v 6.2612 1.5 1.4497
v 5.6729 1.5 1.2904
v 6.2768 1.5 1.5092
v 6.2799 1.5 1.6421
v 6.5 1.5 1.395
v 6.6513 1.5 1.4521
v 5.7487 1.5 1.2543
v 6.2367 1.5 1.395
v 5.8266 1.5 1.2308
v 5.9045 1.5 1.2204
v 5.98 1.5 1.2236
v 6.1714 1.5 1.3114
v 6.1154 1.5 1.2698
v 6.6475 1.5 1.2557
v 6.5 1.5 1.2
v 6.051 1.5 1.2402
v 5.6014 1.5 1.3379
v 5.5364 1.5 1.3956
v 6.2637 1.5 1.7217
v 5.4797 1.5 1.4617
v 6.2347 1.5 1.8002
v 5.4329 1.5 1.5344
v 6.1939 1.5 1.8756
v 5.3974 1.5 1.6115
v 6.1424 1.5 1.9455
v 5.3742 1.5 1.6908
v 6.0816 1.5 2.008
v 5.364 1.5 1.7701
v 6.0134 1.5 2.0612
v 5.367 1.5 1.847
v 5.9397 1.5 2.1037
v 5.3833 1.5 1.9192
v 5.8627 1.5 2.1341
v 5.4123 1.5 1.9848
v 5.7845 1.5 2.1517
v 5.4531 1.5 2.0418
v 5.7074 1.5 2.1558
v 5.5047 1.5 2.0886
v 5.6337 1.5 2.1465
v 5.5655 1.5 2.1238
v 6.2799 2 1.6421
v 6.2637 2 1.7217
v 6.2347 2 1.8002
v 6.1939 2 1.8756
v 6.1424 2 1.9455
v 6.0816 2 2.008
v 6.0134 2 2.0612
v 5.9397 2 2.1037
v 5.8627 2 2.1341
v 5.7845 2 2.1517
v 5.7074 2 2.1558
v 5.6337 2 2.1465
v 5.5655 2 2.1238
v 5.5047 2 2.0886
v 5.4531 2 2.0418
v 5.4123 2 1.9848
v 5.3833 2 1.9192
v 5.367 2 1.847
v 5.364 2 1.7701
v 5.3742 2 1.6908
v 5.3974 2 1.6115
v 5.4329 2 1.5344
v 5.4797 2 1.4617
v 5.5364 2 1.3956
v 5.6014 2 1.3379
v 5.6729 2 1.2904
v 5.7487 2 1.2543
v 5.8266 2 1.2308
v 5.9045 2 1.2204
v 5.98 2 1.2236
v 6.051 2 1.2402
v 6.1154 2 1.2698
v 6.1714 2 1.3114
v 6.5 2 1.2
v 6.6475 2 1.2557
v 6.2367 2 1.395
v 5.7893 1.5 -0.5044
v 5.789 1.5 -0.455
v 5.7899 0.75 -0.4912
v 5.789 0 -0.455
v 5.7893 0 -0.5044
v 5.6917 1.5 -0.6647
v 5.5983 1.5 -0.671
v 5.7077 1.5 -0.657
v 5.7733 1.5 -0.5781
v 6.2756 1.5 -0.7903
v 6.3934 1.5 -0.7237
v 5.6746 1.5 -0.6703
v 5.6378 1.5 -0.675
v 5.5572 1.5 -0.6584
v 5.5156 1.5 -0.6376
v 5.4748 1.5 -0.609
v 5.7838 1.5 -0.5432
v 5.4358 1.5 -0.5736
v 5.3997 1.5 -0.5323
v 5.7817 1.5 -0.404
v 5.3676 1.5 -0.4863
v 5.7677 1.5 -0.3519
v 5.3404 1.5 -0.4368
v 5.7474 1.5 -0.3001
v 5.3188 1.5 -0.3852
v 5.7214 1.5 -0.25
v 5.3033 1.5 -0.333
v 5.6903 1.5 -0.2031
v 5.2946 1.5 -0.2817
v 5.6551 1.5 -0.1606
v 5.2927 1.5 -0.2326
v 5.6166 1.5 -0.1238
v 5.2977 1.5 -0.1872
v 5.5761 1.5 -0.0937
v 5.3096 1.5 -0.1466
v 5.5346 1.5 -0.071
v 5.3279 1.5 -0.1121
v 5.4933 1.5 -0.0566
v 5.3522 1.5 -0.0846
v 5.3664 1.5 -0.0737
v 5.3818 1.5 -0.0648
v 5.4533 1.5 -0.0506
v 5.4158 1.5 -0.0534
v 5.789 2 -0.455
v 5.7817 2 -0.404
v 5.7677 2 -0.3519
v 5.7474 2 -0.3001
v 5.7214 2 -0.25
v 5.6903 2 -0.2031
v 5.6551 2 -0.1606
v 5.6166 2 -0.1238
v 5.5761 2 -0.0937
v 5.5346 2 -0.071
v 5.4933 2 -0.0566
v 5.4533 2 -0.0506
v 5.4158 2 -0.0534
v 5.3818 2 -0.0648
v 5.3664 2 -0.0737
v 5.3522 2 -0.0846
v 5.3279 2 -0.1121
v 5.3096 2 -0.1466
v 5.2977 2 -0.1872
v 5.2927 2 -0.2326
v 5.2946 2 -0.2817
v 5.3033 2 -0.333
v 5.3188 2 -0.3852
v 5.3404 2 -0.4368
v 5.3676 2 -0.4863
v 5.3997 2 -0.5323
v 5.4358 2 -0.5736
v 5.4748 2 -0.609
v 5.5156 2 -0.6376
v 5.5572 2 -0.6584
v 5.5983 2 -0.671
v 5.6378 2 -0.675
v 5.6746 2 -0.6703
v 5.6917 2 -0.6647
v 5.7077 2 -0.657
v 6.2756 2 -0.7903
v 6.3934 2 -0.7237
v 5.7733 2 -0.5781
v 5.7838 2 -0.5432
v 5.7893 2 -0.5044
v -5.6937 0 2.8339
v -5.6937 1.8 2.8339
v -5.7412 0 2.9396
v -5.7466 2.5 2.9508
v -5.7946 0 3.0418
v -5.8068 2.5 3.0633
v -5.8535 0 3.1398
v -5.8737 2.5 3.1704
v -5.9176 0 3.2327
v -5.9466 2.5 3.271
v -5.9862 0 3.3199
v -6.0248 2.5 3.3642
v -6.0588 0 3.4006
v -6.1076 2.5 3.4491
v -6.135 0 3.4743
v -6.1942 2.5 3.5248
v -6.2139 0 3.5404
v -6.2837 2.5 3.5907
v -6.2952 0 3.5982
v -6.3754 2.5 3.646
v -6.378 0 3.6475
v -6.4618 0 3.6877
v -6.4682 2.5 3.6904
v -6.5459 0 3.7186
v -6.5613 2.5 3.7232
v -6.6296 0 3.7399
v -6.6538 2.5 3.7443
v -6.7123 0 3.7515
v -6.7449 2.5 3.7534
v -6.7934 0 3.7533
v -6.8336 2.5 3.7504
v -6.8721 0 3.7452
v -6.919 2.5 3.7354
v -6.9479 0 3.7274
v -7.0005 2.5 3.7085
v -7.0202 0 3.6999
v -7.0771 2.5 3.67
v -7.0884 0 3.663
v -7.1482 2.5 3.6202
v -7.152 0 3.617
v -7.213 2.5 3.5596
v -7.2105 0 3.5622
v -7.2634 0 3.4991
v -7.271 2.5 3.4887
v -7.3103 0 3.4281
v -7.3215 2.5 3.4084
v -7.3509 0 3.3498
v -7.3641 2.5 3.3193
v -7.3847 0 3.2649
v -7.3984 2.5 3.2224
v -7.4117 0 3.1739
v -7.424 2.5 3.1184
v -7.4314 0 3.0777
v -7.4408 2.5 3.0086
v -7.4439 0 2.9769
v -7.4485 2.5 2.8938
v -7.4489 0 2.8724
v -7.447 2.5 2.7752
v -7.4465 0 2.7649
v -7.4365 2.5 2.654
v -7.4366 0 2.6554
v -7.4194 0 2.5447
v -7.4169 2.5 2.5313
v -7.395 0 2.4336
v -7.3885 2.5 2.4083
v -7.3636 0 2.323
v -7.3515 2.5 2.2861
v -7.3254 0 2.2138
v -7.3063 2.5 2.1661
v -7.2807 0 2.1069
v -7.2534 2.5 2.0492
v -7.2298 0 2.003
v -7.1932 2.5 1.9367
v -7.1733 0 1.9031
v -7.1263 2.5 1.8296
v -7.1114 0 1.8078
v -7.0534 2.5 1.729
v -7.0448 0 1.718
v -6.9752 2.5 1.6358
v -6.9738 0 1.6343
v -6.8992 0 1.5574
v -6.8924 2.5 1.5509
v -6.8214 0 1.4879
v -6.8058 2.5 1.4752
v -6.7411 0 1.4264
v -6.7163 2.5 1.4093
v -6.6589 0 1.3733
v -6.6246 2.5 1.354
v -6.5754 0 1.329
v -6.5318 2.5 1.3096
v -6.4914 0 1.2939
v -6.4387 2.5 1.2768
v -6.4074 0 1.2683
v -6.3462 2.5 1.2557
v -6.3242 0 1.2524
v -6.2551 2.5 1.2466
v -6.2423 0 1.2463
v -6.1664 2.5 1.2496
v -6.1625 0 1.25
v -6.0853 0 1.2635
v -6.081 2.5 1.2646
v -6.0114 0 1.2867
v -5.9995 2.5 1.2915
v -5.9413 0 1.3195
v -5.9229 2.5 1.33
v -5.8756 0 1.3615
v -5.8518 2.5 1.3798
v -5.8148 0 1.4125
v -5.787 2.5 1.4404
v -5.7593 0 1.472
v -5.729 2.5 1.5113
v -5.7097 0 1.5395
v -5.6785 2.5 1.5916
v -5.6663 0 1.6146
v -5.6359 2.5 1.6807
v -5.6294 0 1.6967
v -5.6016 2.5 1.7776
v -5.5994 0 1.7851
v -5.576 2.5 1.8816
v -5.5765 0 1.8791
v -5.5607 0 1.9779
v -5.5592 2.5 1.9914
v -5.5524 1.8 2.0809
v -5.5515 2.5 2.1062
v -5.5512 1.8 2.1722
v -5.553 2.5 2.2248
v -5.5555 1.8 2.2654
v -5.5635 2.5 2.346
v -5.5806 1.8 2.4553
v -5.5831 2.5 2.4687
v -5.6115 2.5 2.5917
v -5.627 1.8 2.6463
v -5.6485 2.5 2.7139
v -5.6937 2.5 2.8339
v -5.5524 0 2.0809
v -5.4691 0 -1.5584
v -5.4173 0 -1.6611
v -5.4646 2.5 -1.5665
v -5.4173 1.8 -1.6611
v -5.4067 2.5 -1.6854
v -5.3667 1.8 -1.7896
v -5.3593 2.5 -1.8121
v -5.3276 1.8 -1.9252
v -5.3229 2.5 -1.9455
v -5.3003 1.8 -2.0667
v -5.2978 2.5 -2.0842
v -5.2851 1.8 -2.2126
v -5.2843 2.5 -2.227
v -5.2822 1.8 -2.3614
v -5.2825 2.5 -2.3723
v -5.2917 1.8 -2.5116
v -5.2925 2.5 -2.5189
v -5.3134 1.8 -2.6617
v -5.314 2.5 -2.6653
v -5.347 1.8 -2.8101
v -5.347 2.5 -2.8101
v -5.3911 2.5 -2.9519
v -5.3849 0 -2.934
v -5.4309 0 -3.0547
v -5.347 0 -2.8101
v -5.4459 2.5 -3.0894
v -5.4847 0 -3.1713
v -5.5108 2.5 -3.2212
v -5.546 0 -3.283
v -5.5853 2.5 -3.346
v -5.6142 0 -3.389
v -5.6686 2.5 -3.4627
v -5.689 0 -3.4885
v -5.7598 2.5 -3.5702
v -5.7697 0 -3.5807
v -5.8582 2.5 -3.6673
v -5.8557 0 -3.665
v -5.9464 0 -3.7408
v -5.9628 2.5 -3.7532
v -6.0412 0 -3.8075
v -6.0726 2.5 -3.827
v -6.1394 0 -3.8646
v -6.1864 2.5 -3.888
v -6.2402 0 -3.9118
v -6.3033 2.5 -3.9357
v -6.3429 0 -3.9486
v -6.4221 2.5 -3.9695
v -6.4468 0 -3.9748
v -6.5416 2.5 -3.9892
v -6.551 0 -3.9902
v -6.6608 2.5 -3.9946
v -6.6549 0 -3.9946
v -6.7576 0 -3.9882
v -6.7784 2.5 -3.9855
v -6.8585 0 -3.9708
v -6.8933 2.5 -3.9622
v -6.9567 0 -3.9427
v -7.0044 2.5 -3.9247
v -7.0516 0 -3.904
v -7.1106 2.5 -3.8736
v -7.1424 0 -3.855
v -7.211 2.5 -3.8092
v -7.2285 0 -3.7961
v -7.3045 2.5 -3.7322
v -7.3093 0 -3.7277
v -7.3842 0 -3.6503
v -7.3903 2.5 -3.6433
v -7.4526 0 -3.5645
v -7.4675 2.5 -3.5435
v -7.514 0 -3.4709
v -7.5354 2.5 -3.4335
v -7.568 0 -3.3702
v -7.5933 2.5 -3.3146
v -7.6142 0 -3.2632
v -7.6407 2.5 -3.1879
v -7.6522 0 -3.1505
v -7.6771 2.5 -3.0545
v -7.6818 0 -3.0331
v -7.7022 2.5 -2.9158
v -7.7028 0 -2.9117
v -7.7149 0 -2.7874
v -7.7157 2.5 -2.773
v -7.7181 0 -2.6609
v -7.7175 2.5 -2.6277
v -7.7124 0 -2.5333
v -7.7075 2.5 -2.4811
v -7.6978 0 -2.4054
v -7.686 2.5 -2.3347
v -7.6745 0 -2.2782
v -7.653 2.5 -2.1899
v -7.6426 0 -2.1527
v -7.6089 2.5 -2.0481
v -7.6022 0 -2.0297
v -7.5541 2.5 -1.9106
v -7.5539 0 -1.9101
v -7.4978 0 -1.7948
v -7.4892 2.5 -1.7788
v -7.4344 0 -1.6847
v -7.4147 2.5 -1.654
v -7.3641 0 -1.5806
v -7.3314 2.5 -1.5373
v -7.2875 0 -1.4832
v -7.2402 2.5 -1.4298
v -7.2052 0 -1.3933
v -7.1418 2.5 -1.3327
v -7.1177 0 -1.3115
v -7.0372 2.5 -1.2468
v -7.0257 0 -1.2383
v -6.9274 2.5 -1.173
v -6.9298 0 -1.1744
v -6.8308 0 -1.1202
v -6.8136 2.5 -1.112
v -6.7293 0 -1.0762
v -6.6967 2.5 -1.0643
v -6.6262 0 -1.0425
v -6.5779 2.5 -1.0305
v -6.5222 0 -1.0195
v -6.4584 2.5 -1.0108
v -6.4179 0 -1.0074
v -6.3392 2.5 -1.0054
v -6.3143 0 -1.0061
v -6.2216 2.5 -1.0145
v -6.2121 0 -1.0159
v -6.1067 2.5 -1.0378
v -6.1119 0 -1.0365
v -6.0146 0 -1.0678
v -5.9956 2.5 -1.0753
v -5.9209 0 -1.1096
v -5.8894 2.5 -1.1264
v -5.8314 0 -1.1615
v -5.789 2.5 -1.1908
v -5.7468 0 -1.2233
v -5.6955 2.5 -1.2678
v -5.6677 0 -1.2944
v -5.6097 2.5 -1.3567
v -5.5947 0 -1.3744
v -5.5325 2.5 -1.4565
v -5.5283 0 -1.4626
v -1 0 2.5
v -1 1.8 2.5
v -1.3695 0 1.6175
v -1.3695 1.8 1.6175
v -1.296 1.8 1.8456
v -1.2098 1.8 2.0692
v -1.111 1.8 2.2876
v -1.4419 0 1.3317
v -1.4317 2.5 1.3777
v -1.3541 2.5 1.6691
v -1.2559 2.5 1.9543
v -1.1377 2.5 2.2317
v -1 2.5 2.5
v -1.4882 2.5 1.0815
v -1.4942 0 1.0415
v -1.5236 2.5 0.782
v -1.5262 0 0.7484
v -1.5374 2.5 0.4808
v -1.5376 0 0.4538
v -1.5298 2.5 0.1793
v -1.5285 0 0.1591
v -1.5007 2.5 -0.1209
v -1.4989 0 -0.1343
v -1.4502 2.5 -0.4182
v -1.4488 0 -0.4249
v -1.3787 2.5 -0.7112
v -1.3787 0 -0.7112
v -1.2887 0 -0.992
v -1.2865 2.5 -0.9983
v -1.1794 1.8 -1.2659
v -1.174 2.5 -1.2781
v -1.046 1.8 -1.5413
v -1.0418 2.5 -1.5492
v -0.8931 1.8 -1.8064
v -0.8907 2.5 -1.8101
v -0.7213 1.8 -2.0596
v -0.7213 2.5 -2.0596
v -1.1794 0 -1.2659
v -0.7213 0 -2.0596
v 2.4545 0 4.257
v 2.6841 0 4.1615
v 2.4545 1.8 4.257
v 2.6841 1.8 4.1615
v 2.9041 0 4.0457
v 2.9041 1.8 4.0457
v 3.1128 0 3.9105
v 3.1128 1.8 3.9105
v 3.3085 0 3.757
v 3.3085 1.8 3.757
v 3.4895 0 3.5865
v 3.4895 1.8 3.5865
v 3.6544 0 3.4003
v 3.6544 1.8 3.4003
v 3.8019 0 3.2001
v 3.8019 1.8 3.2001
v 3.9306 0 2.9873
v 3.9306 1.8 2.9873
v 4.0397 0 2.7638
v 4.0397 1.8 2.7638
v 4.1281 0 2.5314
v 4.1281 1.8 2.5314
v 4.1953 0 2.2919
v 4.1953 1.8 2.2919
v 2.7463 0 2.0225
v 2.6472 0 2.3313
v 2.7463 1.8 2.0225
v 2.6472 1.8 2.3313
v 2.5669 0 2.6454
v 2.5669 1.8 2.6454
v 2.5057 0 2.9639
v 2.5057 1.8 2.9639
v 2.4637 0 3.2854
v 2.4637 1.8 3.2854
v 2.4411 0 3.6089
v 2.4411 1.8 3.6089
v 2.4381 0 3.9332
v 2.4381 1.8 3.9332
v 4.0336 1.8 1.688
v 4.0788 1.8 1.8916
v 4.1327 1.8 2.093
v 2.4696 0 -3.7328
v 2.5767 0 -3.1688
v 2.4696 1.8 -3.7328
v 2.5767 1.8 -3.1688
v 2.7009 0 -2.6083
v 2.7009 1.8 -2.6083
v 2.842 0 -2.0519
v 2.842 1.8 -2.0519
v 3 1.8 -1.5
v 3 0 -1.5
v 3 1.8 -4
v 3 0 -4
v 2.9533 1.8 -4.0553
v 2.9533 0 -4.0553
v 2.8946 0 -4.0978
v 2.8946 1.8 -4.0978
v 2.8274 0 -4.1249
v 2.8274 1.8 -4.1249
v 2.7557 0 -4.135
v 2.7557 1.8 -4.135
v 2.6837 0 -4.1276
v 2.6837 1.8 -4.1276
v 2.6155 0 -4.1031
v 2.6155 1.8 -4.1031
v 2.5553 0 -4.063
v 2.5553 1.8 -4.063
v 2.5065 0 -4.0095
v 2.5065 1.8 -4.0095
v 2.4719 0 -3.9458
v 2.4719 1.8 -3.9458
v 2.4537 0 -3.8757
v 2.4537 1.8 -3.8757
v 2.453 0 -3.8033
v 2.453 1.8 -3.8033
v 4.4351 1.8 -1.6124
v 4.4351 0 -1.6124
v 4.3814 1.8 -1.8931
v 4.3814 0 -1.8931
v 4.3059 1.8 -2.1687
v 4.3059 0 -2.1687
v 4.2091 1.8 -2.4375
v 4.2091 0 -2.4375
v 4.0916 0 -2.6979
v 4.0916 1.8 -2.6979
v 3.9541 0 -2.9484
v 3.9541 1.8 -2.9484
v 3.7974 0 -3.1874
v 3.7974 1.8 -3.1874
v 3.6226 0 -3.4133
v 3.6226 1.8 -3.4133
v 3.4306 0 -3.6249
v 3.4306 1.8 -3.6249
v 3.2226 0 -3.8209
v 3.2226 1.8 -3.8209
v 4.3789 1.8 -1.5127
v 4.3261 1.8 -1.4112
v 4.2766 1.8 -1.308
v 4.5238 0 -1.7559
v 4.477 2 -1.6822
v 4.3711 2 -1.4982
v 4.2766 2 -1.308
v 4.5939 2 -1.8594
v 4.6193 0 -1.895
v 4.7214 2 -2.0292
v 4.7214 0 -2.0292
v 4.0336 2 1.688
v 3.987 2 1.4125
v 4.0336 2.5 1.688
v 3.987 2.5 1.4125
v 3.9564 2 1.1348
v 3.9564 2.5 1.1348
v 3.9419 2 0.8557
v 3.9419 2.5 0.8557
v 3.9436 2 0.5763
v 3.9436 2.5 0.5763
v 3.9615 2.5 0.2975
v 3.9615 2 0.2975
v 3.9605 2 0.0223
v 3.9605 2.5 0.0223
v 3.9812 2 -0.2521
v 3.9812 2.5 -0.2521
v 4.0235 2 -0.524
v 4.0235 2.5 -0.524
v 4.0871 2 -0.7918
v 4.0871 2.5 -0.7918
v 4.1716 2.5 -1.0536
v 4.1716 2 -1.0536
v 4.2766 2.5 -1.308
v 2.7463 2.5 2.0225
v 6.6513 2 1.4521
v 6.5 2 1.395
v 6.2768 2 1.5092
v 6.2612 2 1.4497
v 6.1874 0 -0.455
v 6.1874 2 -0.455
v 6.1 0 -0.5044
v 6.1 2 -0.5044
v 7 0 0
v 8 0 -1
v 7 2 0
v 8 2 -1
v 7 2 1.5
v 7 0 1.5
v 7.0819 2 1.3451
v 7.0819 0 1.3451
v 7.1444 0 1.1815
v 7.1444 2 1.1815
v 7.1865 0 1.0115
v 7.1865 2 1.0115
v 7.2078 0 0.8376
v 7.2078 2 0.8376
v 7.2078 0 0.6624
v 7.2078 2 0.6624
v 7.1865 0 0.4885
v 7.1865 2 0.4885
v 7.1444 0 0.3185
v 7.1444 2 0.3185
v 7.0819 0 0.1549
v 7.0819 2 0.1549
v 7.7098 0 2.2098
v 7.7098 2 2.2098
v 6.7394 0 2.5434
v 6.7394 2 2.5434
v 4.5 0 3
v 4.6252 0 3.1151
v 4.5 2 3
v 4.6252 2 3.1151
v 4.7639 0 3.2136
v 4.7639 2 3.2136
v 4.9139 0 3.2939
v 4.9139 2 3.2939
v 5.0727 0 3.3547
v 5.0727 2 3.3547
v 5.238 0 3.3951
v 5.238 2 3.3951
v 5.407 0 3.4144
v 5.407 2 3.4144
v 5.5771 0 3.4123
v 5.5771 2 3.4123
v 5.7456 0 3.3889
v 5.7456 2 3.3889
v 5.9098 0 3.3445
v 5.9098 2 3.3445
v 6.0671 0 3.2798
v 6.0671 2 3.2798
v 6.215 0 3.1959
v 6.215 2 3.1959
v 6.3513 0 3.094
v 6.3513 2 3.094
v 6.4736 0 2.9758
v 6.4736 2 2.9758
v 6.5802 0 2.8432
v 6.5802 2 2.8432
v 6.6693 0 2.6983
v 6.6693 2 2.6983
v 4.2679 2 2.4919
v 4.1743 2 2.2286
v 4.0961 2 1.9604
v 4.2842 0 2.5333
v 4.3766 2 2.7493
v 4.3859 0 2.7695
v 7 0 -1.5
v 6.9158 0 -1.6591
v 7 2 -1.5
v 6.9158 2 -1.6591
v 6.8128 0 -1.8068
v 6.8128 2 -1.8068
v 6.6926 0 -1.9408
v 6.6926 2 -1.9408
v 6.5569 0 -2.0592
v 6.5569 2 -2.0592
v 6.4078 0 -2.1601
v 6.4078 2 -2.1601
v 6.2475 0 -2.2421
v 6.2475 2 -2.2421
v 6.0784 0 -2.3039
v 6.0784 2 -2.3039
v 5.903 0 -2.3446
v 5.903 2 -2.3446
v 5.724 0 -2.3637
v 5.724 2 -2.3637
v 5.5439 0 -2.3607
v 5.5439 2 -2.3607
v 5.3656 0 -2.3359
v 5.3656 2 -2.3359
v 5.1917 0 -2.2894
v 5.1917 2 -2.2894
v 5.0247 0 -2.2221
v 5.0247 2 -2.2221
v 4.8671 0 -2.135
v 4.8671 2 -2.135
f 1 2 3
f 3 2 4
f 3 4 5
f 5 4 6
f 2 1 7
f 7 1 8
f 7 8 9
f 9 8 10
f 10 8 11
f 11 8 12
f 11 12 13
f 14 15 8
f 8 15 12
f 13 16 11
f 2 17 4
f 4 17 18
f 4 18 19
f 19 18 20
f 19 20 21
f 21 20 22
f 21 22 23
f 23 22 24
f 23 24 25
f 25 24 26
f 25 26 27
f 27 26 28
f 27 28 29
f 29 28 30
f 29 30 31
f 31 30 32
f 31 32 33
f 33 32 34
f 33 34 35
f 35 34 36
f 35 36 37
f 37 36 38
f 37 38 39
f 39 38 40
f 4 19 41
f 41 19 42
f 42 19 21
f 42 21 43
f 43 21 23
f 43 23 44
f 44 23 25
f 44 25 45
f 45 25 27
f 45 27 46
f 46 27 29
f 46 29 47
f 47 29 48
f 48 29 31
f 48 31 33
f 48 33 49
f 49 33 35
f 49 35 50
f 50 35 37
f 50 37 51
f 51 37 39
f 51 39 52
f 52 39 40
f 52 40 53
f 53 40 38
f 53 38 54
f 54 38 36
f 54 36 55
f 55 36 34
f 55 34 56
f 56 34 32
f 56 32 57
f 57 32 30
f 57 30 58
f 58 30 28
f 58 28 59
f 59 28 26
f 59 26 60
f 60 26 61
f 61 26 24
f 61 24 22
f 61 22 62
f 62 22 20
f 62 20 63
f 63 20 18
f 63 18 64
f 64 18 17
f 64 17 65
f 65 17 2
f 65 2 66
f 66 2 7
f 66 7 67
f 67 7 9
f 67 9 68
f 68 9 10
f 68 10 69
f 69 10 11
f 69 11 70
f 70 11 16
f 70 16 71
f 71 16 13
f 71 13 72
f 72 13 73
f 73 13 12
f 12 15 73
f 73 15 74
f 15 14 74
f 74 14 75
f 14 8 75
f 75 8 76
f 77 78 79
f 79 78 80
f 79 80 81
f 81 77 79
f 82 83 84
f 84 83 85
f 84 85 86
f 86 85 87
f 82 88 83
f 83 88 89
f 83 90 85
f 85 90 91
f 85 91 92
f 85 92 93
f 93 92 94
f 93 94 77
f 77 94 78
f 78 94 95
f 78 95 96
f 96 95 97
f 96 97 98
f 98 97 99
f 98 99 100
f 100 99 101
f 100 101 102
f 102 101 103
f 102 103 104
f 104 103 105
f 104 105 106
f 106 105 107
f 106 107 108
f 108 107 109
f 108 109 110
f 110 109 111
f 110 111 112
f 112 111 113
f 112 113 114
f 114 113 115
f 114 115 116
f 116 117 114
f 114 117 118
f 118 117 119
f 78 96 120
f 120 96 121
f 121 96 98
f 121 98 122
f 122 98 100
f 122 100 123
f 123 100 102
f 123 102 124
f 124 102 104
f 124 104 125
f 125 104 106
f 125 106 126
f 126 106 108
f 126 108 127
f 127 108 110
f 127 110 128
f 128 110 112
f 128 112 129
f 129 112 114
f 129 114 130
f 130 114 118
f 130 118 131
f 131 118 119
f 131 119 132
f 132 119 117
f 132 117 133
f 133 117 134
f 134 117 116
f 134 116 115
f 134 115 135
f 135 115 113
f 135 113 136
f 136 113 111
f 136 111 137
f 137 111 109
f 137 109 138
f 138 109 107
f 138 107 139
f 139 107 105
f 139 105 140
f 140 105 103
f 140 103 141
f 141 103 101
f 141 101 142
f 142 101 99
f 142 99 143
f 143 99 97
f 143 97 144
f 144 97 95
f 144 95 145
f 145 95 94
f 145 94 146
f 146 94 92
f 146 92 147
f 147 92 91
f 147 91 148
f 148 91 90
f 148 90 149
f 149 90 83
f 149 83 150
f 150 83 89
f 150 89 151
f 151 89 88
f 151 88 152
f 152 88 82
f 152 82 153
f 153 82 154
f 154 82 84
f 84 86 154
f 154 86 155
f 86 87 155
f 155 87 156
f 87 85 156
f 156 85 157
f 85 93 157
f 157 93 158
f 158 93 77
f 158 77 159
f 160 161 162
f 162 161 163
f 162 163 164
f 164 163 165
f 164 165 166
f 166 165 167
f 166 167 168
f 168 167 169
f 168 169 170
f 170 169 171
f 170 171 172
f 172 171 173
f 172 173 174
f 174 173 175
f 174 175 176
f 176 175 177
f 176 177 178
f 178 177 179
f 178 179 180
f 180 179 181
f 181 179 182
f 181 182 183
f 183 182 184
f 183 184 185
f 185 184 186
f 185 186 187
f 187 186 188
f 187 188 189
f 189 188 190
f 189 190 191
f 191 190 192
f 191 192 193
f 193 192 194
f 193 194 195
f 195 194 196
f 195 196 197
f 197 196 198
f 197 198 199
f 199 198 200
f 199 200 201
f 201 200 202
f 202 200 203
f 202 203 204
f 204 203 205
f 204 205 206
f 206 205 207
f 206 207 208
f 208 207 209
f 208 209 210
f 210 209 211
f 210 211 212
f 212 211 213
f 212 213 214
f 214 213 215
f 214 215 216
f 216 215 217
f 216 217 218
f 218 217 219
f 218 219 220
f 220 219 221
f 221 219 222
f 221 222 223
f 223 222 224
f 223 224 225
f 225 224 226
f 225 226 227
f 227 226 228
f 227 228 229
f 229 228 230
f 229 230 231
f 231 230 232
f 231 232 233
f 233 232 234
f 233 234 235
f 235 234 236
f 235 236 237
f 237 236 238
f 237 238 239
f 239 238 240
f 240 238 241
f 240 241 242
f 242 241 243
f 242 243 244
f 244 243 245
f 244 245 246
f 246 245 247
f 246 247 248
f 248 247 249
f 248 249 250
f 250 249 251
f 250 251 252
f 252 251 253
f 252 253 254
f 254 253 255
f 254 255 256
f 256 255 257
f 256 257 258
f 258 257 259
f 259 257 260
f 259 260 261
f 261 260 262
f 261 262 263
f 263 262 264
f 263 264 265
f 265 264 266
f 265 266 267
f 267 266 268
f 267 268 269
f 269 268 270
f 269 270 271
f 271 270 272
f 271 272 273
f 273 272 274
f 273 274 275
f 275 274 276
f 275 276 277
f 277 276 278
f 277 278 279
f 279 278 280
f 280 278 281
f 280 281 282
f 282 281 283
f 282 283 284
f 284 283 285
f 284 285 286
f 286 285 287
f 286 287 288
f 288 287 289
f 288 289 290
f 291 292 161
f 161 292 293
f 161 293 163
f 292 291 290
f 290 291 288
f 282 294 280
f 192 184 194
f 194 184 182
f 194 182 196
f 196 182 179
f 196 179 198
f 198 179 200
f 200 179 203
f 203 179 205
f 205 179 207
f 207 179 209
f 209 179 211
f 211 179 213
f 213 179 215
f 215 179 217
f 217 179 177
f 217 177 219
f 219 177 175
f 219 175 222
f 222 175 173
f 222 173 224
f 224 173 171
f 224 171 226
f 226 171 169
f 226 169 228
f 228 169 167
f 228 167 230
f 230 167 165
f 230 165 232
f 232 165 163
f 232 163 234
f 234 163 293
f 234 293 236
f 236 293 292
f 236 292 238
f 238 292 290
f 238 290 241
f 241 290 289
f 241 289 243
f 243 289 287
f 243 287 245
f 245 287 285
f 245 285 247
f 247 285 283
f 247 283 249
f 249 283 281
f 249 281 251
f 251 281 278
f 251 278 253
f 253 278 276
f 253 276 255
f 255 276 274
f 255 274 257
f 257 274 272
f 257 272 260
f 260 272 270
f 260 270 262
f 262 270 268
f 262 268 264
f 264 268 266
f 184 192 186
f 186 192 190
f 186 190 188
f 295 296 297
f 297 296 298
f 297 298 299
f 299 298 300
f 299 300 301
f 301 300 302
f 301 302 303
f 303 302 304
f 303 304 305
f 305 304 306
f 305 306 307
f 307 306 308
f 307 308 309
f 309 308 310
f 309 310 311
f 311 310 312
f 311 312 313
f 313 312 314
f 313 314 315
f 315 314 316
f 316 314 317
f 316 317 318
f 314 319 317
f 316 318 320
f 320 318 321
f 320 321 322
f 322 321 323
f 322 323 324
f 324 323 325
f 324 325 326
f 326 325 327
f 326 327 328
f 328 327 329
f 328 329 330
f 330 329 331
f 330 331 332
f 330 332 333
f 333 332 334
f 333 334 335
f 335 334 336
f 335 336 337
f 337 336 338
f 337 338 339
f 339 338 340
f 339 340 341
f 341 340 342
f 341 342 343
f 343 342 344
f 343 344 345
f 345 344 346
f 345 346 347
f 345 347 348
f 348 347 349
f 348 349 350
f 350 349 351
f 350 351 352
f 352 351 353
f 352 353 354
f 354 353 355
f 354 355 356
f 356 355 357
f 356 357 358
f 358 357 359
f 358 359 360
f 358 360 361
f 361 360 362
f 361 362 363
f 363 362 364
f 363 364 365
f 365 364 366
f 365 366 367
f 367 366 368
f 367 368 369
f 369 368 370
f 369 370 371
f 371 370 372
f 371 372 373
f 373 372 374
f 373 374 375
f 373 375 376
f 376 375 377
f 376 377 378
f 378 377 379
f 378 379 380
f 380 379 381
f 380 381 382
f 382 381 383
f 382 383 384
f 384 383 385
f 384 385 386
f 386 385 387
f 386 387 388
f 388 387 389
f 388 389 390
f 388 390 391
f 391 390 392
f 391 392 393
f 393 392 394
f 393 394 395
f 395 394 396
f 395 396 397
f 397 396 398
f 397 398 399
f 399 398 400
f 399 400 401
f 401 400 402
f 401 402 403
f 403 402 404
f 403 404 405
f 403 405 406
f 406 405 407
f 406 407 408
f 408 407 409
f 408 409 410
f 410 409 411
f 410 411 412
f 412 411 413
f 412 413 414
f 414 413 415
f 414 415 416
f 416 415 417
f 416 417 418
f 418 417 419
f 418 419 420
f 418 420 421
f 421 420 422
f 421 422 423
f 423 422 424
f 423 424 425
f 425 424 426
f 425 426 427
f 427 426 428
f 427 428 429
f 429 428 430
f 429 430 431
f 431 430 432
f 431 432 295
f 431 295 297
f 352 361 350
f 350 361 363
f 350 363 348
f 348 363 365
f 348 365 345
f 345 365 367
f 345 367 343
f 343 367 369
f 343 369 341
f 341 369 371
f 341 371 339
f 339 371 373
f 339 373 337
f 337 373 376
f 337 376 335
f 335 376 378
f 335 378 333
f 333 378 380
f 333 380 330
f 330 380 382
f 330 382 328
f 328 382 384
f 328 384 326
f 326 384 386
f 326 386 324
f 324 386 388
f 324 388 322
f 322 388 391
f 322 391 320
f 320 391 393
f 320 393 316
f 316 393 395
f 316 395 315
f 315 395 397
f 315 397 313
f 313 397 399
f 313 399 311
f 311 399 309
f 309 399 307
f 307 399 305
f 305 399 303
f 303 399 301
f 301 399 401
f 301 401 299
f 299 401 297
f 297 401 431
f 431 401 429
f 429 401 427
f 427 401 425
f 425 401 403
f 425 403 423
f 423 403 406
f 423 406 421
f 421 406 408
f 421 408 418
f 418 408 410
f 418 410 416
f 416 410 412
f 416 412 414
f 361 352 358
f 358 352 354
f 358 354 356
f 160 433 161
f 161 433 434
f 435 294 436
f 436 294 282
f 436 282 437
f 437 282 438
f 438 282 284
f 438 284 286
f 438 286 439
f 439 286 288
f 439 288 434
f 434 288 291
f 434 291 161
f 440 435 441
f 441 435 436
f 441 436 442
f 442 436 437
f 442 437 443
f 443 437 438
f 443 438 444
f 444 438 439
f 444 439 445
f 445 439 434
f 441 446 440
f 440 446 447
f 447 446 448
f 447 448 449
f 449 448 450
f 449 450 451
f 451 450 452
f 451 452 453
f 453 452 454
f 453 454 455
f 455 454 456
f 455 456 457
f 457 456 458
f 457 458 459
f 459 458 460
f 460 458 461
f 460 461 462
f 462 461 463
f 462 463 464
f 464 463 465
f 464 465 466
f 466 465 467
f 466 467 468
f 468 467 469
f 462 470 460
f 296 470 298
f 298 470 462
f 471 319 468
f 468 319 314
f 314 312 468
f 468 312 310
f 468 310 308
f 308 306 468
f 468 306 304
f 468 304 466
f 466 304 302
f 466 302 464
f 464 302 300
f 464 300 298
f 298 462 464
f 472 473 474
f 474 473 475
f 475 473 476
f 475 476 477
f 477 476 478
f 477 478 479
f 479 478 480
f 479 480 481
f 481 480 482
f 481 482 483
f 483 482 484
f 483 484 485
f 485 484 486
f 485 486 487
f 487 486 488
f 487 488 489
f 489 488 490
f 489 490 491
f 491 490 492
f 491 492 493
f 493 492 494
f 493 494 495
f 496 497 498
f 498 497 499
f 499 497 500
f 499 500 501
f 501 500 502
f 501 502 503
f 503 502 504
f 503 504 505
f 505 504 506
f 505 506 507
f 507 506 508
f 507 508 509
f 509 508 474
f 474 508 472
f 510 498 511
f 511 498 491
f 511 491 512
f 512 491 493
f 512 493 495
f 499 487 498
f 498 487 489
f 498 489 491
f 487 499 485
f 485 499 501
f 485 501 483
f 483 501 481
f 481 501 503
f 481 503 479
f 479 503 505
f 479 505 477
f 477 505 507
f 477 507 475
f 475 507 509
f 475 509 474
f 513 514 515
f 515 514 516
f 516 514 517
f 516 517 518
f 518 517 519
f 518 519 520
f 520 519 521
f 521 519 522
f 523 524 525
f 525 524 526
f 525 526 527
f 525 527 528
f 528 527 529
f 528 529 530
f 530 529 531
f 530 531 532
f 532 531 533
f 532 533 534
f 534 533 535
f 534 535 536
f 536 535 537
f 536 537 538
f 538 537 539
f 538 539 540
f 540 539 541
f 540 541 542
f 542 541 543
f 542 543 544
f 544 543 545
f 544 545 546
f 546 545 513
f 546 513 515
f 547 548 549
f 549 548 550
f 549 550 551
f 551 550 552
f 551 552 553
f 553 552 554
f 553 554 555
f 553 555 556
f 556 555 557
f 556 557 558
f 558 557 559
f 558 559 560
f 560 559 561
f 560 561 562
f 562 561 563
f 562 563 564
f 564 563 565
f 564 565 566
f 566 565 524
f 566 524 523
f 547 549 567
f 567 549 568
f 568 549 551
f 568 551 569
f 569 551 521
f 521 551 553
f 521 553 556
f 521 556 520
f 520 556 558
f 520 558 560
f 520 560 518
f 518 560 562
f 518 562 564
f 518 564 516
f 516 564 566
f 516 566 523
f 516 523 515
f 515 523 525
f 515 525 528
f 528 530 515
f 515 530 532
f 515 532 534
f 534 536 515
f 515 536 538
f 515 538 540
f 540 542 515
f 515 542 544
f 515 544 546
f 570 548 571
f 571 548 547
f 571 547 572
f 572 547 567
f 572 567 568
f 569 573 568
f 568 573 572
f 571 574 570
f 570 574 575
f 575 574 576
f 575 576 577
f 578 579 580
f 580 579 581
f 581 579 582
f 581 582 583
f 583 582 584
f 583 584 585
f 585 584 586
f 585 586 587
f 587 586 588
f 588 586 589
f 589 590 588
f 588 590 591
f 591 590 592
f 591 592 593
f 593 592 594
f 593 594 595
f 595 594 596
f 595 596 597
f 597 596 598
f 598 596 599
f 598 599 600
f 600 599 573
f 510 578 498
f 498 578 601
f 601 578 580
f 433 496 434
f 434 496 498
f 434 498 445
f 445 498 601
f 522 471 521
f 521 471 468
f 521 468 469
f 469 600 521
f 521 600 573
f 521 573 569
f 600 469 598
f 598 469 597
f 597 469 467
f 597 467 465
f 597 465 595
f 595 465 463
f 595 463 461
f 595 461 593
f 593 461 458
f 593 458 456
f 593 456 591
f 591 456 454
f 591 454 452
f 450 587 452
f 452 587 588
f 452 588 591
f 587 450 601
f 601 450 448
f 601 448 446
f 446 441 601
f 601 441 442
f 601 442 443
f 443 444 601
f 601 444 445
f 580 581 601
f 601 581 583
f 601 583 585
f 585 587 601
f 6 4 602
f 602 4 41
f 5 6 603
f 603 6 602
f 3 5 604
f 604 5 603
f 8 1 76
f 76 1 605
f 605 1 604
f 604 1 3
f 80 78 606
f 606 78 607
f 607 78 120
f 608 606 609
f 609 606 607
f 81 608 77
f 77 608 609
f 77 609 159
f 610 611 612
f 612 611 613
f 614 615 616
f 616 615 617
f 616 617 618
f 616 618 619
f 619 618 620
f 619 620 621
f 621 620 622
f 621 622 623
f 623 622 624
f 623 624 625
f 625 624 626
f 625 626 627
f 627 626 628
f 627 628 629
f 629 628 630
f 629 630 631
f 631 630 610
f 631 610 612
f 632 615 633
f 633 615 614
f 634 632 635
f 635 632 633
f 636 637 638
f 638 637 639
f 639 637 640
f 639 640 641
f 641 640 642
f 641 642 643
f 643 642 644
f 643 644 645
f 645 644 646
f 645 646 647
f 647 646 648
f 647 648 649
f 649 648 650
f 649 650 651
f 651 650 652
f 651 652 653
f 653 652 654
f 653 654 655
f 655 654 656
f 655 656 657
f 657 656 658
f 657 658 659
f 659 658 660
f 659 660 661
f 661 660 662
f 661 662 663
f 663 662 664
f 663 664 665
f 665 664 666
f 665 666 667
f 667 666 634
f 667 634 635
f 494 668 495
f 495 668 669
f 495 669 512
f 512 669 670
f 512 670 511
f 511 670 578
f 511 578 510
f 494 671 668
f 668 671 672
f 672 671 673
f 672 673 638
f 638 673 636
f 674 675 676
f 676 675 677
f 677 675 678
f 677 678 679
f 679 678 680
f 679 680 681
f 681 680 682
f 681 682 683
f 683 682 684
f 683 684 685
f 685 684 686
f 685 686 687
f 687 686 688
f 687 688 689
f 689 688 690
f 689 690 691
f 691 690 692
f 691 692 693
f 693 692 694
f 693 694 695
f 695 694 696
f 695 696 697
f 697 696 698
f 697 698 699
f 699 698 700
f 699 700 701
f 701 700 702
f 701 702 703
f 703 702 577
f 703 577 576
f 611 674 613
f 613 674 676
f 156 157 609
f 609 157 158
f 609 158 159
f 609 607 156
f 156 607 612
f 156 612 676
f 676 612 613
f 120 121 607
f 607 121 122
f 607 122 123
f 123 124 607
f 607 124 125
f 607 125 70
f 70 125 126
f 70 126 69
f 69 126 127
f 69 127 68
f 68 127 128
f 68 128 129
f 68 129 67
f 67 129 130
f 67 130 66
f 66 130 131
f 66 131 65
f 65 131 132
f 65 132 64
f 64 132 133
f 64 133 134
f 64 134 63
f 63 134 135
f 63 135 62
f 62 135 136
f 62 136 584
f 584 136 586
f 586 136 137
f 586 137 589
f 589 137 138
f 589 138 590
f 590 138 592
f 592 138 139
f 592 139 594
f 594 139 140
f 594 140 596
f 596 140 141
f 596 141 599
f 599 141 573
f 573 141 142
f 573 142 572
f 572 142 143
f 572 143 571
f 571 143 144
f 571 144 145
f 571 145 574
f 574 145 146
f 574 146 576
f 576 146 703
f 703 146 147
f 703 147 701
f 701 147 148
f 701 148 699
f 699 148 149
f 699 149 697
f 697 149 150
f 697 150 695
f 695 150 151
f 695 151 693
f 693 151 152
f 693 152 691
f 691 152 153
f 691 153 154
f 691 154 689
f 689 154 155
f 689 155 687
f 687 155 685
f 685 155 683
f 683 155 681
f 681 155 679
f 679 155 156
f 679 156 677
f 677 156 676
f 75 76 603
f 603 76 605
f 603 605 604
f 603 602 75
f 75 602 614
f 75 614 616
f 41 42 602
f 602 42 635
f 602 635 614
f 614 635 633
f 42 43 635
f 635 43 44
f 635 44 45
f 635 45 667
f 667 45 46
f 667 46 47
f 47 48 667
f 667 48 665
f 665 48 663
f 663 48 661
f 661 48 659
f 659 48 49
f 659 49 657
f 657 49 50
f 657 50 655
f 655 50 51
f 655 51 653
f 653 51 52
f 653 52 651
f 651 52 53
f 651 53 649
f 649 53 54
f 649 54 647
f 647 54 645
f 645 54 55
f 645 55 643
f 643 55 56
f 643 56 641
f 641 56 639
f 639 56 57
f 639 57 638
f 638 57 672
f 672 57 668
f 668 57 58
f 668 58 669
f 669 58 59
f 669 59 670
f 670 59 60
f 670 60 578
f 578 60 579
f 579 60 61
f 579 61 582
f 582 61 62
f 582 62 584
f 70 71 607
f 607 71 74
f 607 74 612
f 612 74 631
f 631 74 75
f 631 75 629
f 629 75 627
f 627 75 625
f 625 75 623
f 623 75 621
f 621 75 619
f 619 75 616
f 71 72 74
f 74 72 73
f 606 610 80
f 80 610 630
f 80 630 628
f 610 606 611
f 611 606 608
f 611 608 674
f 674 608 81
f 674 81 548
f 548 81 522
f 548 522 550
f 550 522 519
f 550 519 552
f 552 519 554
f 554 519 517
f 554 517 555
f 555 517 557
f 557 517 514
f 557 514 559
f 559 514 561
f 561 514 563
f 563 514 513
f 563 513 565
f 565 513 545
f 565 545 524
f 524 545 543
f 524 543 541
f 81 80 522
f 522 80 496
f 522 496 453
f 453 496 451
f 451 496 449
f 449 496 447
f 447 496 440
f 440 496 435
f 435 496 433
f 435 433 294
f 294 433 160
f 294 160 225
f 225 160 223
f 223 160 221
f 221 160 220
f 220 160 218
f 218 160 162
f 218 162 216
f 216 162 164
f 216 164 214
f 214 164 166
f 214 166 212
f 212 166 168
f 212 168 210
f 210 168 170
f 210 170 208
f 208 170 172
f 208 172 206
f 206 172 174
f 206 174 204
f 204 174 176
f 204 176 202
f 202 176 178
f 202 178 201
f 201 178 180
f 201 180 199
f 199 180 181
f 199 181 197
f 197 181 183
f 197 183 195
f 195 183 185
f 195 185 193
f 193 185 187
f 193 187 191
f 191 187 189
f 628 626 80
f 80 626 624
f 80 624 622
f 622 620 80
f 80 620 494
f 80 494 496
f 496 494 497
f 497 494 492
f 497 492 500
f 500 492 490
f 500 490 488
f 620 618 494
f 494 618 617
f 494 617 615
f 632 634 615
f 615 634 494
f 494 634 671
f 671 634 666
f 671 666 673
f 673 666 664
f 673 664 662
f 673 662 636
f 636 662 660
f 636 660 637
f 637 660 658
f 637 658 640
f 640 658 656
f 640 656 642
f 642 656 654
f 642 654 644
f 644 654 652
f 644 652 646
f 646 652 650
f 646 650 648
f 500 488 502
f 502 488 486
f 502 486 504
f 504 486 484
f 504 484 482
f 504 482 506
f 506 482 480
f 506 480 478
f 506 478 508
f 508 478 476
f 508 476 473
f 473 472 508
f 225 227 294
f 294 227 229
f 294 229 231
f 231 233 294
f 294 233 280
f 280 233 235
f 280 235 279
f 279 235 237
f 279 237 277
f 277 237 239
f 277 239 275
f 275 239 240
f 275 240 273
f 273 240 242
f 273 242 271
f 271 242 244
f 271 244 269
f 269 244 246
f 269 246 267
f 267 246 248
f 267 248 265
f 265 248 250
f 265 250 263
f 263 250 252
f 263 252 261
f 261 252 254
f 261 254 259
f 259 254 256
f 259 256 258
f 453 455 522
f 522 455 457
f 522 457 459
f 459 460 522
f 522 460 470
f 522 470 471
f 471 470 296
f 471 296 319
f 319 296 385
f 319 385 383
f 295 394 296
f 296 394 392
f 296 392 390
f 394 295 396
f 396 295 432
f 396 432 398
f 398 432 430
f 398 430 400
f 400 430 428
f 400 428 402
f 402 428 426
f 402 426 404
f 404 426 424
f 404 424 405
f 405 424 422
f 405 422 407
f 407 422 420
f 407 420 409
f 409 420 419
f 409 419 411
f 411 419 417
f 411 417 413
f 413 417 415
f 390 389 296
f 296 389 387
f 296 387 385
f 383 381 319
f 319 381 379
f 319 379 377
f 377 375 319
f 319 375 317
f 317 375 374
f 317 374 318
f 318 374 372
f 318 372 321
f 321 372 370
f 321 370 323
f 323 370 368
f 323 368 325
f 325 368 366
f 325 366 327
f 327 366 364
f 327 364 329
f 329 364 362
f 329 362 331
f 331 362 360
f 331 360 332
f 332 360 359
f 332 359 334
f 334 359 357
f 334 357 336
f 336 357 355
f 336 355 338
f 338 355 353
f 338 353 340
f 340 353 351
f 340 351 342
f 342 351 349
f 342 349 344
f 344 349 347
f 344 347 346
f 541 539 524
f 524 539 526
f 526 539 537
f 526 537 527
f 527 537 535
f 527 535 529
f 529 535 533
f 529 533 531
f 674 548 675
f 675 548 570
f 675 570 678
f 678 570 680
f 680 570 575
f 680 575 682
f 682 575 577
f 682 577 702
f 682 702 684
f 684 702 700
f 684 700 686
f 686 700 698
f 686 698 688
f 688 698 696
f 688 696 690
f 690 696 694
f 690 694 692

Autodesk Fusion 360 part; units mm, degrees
sketch "スケッチ1" plane through (0, 0, 0) normal (0, 1, 0) x (1, 0, 0)
  line L0 (7, 1.5) -> (8, 1)
  line L1 (8, 1) -> (7, 0)
  line L2 (7, -1.5) -> (7.7098, -2.2098)
  line L3 (7.7098, -2.2098) -> (6.7394, -2.5434)
  arc A0 (7, -1.5) -> (7, 0) centre (5.7688, -0.75) ccw
  arc A1 (4.5, -3) -> (6.7394, -2.5434) centre (5.4755, -2.0646) ccw
  arc A2 (3.9615, -0.2975) -> (4.5, -3) centre (8.7627, -0.7458) ccw
  arc A3 (4.7214, 2.0292) -> (3.9615, -0.2975) centre (7.4426, -0.1469) ccw
  arc A4 (7, 1.5) -> (4.7214, 2.0292) centre (5.6579, 0.8916) ccw
  arc A5 (4.4351, 1.6124) -> (3, 4) centre (0.8237, 1.0669) ccw
  arc A6 (3, 4) -> (2.4696, 3.7328) centre (2.75, 3.8362) ccw
  arc A7 (2.4696, 3.7328) -> (3, 1.5) centre (21.0964, 6.9782) ccw
  line L4 (3, 1.5) -> (4.2766, 1.308)
  line L5 (3, 1.5) -> (-0.7213, 2.0596)
  arc A8 (2.7463, -2.0225) -> (2.4545, -4.257) centre (7.8275, -3.8223) ccw
  arc A9 (2.4545, -4.257) -> (4.1953, -2.2919) centre (1.5125, -1.6691) ccw
  line L6 (4.0336, -1.688) -> (2.7463, -2.0225)
  line L7 (2.7463, -2.0225) -> (-1, -2.5)
  arc A10 (-0.7213, 2.0596) -> (-1, -2.5) centre (2.6887, -0.4371) ccw
  ellipse E0 centre (-6.5, 2.5) end of major axis (-7.653, 2.1899) minor radius 1.5141
  line L8 (-5.347, 2.8101) -> (-7.653, 2.1899)
  line L9 (-6.8933, 3.9622) -> (-6.1067, 1.0378)
  ellipse E1 centre (-6.5, -2.5) end of major axis (-5.6937, -2.8339) minor radius 1.3081
  line L10 (-7.3063, -2.1661) -> (-5.6937, -2.8339)
  line L11 (-7.0005, -3.7085) -> (-5.9995, -1.2915)
  line L12 (-0.7213, 2.0596) -> (-5.347, 2.8101)
  line L13 (-5.4173, 1.6611) -> (-1.1794, 1.2659)
  line L14 (-1.3695, -1.6175) -> (-5.5524, -2.0809)
  line L15 (-5.6937, -2.8339) -> (-1, -2.5)
  ellipse E2 centre (5.5413, 0.3628) end of major axis (5.3748, 0.0685) minor radius 0.2124
  line L16 (5.7077, 0.657) -> (5.3748, 0.0685)
  line L17 (5.3564, 0.4673) -> (5.7261, 0.2582)
  ellipse E3 centre (5.8235, -1.688) end of major axis (5.4755, -2.0646) minor radius 0.4096
  line L18 (6.1714, -1.3114) -> (5.4755, -2.0646)
  line L19 (5.5226, -1.4101) -> (6.1243, -1.966)
  line L20 (5.7077, 0.657) -> (6.2756, 0.7903)
  line L21 (6.2756, 0.7903) -> (6.3934, 0.7237)
  line L22 (6.3934, 0.7237) -> (5.7733, 0.5781)
  line L23 (5.7893, 0.5044) -> (6.1, 0.5044)
  line L24 (6.1, 0.5044) -> (6.1874, 0.455)
  line L25 (6.1874, 0.455) -> (5.789, 0.455)
  line L26 (6.1714, -1.3114) -> (6.5, -1.2)
  line L27 (6.5, -1.2) -> (6.6475, -1.2557)
  line L28 (6.6475, -1.2557) -> (6.2367, -1.395)
  line L29 (6.2768, -1.5092) -> (6.5, -1.395)
  line L30 (6.5, -1.395) -> (6.6513, -1.4521)
  line L31 (6.6513, -1.4521) -> (6.2799, -1.6421)
extrude "押し出し15" add sketch "スケッチ1" along normal blind 2 contours L0 L1 L2 L3 A0 A1 A2 A3 A4
extrude "押し出し16" add sketch "スケッチ1" along normal blind 2.5 contours A2 A3 L4 L5 L6 L7 A10
extrude "押し出し17" add sketch "スケッチ1" along normal blind 1.8 contours A3 A5 A6 A7 L4
extrude "押し出し18" add sketch "スケッチ1" along normal blind 1.8 contours A2 A8 A9 L6
extrude "押し出し19" add sketch "スケッチ1" along normal blind 1.8 contours A10 E0 L12 L13
extrude "押し出し20" add sketch "スケッチ1" along normal blind 1.8 contours A10 E1 L14 L15
extrude "押し出し21" add sketch "スケッチ1" along normal blind 2.5 contours E0 L8 L9 | E0 L8 L9 | E0 L8 L9 | E0 L8 L9
extrude "押し出し22" add sketch "スケッチ1" along normal blind 2.5 contours E1 L10 L11 | E1 L10 L11 | E1 L10 L11 | E1 L10 L11
extrude "押し出し23" add sketch "スケッチ1" along normal blind 1.5 contours E2 L16 L17 | E2 L16 L17 | E2 L16 L17 | E2 L16 L17 | E2 L20 L21 L22 | E3 L18 L19 | E3 L18 L19 | E3 L18 L19 | E3 L18 L19 | E3 L29 L30 L31 | E3 L26 L27 L28
